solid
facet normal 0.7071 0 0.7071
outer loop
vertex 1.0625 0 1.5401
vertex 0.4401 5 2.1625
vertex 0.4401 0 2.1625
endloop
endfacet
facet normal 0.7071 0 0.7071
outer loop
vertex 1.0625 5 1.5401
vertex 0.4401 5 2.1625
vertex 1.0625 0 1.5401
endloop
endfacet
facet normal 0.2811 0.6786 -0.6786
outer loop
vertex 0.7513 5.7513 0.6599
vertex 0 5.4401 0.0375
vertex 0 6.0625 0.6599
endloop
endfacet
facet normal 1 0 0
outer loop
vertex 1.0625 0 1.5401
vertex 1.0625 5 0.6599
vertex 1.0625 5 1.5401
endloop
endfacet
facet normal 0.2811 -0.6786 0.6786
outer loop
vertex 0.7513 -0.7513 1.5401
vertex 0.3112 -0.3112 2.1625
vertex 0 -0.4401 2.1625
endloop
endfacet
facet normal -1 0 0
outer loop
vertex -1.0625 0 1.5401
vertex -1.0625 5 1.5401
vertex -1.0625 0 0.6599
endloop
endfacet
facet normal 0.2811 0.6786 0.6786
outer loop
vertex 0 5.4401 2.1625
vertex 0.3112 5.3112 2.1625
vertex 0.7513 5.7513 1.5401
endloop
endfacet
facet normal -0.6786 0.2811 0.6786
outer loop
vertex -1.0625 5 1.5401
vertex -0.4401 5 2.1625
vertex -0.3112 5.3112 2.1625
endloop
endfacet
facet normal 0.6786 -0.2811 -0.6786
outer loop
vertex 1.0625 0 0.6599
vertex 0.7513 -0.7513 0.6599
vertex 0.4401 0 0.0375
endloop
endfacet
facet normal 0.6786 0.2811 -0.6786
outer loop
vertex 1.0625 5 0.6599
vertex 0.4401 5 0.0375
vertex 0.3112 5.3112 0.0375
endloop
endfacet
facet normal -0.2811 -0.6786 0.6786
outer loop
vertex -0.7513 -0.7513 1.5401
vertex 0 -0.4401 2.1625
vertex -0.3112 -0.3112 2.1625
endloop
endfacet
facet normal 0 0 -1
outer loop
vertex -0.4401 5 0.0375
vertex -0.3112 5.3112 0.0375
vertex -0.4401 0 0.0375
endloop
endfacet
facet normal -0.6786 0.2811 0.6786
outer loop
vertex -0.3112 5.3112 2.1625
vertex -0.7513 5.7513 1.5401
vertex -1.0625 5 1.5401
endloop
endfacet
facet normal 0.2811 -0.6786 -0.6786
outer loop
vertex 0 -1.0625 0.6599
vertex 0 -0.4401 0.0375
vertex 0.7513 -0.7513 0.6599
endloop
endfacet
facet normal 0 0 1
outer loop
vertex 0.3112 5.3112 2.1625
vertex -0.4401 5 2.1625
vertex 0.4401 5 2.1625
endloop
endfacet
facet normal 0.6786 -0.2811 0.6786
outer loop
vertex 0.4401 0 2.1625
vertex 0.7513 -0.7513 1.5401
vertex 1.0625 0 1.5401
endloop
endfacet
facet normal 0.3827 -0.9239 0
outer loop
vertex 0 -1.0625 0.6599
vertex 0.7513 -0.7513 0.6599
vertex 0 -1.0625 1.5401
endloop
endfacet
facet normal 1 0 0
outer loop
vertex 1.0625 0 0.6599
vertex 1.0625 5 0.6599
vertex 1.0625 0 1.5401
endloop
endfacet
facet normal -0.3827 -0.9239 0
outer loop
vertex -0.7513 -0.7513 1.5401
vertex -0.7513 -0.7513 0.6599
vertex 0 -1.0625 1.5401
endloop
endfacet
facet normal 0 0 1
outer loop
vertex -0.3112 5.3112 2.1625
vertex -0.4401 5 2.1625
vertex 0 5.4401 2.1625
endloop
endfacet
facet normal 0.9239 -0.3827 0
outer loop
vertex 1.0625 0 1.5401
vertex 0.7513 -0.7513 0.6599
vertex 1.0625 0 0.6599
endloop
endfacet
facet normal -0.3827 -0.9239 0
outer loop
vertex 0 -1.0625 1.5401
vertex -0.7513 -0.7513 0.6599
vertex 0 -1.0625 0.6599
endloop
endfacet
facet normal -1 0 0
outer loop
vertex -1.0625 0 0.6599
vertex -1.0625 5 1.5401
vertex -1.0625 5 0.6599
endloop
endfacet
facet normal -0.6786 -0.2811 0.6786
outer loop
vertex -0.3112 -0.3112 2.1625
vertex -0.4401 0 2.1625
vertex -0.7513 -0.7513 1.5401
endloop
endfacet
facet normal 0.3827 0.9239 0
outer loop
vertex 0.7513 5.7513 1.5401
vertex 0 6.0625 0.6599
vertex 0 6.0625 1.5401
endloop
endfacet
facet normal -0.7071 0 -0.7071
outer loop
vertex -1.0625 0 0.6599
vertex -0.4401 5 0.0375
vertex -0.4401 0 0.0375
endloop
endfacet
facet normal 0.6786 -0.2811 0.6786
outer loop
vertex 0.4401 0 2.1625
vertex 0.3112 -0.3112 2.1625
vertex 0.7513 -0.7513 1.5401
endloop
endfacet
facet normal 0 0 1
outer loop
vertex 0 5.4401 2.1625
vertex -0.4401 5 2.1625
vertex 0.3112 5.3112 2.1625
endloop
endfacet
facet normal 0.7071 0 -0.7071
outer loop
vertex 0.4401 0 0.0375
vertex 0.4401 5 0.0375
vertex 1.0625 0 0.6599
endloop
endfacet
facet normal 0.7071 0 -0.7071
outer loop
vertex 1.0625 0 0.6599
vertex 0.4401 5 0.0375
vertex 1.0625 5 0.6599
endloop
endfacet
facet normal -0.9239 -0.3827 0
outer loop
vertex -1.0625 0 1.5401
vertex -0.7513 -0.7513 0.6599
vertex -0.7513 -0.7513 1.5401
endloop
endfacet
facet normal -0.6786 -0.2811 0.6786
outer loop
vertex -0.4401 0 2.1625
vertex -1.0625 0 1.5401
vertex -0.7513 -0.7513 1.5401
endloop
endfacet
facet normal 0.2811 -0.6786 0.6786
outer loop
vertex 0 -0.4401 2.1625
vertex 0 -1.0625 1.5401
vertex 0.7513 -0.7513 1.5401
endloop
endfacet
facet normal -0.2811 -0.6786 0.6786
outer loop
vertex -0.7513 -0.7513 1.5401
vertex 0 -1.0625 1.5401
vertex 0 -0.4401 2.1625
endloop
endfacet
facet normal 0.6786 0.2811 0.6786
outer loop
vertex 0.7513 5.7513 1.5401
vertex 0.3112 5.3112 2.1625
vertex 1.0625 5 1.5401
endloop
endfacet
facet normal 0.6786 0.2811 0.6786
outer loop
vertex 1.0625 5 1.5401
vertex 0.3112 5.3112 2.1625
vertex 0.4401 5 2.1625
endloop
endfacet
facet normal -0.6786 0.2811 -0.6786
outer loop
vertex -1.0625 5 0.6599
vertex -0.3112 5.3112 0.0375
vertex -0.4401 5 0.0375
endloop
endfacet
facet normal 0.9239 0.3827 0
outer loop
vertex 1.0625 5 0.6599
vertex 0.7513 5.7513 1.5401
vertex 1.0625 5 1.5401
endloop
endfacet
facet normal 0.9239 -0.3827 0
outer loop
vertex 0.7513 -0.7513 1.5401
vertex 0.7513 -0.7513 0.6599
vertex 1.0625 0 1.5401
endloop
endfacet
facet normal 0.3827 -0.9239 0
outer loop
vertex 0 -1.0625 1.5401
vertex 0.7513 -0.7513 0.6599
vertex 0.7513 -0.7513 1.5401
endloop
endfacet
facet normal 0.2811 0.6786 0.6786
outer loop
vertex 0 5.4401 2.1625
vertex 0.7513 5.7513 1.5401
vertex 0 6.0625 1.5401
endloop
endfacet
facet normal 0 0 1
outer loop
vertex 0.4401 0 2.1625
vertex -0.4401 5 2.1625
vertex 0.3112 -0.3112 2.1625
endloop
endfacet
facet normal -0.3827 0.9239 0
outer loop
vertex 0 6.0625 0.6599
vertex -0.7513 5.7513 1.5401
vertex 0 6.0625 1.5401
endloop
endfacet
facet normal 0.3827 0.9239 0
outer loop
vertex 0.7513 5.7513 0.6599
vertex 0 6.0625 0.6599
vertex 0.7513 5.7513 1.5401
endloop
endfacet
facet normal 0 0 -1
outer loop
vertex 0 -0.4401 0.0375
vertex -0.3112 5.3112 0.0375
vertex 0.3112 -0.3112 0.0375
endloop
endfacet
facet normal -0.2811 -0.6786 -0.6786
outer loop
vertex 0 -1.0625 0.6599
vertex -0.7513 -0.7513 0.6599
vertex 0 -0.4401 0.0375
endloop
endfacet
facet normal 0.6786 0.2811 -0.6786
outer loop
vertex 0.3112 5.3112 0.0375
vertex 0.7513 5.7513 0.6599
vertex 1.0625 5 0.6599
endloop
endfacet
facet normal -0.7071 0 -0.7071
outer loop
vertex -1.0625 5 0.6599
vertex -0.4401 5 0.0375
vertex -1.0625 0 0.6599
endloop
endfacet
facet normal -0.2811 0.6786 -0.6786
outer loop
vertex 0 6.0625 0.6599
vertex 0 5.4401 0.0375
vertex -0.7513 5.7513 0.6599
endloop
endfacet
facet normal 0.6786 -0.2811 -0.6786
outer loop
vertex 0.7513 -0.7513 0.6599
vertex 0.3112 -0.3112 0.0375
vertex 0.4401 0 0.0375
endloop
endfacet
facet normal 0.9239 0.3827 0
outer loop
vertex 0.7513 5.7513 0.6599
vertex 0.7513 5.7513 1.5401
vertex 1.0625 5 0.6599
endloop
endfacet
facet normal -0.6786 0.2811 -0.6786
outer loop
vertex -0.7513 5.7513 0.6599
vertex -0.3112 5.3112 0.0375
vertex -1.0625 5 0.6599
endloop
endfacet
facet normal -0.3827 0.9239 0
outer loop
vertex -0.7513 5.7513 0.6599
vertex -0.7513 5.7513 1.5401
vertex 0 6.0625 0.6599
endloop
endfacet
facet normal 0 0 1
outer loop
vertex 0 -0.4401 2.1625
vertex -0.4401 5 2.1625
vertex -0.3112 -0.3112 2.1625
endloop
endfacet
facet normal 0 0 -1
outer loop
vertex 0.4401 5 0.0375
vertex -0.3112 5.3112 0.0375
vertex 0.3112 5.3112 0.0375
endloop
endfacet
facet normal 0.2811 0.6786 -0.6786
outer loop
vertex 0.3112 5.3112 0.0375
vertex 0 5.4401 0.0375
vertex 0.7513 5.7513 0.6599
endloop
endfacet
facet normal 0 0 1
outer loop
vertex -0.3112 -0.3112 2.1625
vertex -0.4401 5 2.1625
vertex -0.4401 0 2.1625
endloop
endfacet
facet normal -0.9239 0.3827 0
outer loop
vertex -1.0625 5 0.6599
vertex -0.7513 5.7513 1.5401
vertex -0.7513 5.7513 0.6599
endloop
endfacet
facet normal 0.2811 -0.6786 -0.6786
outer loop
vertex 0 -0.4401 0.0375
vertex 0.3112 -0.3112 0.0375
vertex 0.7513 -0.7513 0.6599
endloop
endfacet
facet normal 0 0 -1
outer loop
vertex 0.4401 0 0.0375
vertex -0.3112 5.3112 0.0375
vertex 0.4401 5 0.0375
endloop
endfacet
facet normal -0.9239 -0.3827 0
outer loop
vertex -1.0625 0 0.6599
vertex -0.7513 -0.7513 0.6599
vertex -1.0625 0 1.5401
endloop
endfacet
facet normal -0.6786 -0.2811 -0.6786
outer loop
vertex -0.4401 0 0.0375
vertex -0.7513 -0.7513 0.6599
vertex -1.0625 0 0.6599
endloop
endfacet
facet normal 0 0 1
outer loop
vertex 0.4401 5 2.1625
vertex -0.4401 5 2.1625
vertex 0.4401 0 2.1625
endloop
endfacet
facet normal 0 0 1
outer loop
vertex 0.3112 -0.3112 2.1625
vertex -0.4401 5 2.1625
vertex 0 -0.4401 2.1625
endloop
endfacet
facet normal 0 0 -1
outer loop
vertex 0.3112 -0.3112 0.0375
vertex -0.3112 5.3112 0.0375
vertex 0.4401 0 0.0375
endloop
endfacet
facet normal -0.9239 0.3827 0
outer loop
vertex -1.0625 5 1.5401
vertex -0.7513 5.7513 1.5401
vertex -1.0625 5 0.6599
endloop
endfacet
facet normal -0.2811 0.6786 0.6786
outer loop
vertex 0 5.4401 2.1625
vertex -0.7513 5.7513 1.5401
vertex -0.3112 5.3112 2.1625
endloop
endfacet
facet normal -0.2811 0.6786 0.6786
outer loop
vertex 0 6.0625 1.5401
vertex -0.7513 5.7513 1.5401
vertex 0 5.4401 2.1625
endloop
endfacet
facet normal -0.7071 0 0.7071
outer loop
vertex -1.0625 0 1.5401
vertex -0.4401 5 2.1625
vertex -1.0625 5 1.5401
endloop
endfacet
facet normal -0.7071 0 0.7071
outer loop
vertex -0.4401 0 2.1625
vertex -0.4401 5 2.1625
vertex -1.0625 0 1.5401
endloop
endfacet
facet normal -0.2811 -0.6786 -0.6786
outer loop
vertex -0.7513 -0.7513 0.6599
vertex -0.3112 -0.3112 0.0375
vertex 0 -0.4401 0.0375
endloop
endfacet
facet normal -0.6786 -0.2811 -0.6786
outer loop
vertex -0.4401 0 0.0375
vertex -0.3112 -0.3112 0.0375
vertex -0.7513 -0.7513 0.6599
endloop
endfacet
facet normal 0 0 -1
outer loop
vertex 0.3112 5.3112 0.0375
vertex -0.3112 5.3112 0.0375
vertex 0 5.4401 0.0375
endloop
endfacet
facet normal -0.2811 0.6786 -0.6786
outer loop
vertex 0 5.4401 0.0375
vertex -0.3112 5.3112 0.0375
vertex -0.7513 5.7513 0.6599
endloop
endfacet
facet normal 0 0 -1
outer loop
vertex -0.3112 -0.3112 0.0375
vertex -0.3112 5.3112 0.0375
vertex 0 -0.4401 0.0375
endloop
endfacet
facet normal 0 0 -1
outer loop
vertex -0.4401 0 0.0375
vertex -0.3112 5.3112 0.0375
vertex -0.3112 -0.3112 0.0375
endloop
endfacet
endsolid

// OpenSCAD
module rod(a, b, r) {
        hull() {
            translate(a) sphere(r,$fn=8);
            translate(b) sphere(r,$fn=8);
        }
    }
translate([0,0,1.1])
rod([0,0,0],[0,5,0],1.15);
